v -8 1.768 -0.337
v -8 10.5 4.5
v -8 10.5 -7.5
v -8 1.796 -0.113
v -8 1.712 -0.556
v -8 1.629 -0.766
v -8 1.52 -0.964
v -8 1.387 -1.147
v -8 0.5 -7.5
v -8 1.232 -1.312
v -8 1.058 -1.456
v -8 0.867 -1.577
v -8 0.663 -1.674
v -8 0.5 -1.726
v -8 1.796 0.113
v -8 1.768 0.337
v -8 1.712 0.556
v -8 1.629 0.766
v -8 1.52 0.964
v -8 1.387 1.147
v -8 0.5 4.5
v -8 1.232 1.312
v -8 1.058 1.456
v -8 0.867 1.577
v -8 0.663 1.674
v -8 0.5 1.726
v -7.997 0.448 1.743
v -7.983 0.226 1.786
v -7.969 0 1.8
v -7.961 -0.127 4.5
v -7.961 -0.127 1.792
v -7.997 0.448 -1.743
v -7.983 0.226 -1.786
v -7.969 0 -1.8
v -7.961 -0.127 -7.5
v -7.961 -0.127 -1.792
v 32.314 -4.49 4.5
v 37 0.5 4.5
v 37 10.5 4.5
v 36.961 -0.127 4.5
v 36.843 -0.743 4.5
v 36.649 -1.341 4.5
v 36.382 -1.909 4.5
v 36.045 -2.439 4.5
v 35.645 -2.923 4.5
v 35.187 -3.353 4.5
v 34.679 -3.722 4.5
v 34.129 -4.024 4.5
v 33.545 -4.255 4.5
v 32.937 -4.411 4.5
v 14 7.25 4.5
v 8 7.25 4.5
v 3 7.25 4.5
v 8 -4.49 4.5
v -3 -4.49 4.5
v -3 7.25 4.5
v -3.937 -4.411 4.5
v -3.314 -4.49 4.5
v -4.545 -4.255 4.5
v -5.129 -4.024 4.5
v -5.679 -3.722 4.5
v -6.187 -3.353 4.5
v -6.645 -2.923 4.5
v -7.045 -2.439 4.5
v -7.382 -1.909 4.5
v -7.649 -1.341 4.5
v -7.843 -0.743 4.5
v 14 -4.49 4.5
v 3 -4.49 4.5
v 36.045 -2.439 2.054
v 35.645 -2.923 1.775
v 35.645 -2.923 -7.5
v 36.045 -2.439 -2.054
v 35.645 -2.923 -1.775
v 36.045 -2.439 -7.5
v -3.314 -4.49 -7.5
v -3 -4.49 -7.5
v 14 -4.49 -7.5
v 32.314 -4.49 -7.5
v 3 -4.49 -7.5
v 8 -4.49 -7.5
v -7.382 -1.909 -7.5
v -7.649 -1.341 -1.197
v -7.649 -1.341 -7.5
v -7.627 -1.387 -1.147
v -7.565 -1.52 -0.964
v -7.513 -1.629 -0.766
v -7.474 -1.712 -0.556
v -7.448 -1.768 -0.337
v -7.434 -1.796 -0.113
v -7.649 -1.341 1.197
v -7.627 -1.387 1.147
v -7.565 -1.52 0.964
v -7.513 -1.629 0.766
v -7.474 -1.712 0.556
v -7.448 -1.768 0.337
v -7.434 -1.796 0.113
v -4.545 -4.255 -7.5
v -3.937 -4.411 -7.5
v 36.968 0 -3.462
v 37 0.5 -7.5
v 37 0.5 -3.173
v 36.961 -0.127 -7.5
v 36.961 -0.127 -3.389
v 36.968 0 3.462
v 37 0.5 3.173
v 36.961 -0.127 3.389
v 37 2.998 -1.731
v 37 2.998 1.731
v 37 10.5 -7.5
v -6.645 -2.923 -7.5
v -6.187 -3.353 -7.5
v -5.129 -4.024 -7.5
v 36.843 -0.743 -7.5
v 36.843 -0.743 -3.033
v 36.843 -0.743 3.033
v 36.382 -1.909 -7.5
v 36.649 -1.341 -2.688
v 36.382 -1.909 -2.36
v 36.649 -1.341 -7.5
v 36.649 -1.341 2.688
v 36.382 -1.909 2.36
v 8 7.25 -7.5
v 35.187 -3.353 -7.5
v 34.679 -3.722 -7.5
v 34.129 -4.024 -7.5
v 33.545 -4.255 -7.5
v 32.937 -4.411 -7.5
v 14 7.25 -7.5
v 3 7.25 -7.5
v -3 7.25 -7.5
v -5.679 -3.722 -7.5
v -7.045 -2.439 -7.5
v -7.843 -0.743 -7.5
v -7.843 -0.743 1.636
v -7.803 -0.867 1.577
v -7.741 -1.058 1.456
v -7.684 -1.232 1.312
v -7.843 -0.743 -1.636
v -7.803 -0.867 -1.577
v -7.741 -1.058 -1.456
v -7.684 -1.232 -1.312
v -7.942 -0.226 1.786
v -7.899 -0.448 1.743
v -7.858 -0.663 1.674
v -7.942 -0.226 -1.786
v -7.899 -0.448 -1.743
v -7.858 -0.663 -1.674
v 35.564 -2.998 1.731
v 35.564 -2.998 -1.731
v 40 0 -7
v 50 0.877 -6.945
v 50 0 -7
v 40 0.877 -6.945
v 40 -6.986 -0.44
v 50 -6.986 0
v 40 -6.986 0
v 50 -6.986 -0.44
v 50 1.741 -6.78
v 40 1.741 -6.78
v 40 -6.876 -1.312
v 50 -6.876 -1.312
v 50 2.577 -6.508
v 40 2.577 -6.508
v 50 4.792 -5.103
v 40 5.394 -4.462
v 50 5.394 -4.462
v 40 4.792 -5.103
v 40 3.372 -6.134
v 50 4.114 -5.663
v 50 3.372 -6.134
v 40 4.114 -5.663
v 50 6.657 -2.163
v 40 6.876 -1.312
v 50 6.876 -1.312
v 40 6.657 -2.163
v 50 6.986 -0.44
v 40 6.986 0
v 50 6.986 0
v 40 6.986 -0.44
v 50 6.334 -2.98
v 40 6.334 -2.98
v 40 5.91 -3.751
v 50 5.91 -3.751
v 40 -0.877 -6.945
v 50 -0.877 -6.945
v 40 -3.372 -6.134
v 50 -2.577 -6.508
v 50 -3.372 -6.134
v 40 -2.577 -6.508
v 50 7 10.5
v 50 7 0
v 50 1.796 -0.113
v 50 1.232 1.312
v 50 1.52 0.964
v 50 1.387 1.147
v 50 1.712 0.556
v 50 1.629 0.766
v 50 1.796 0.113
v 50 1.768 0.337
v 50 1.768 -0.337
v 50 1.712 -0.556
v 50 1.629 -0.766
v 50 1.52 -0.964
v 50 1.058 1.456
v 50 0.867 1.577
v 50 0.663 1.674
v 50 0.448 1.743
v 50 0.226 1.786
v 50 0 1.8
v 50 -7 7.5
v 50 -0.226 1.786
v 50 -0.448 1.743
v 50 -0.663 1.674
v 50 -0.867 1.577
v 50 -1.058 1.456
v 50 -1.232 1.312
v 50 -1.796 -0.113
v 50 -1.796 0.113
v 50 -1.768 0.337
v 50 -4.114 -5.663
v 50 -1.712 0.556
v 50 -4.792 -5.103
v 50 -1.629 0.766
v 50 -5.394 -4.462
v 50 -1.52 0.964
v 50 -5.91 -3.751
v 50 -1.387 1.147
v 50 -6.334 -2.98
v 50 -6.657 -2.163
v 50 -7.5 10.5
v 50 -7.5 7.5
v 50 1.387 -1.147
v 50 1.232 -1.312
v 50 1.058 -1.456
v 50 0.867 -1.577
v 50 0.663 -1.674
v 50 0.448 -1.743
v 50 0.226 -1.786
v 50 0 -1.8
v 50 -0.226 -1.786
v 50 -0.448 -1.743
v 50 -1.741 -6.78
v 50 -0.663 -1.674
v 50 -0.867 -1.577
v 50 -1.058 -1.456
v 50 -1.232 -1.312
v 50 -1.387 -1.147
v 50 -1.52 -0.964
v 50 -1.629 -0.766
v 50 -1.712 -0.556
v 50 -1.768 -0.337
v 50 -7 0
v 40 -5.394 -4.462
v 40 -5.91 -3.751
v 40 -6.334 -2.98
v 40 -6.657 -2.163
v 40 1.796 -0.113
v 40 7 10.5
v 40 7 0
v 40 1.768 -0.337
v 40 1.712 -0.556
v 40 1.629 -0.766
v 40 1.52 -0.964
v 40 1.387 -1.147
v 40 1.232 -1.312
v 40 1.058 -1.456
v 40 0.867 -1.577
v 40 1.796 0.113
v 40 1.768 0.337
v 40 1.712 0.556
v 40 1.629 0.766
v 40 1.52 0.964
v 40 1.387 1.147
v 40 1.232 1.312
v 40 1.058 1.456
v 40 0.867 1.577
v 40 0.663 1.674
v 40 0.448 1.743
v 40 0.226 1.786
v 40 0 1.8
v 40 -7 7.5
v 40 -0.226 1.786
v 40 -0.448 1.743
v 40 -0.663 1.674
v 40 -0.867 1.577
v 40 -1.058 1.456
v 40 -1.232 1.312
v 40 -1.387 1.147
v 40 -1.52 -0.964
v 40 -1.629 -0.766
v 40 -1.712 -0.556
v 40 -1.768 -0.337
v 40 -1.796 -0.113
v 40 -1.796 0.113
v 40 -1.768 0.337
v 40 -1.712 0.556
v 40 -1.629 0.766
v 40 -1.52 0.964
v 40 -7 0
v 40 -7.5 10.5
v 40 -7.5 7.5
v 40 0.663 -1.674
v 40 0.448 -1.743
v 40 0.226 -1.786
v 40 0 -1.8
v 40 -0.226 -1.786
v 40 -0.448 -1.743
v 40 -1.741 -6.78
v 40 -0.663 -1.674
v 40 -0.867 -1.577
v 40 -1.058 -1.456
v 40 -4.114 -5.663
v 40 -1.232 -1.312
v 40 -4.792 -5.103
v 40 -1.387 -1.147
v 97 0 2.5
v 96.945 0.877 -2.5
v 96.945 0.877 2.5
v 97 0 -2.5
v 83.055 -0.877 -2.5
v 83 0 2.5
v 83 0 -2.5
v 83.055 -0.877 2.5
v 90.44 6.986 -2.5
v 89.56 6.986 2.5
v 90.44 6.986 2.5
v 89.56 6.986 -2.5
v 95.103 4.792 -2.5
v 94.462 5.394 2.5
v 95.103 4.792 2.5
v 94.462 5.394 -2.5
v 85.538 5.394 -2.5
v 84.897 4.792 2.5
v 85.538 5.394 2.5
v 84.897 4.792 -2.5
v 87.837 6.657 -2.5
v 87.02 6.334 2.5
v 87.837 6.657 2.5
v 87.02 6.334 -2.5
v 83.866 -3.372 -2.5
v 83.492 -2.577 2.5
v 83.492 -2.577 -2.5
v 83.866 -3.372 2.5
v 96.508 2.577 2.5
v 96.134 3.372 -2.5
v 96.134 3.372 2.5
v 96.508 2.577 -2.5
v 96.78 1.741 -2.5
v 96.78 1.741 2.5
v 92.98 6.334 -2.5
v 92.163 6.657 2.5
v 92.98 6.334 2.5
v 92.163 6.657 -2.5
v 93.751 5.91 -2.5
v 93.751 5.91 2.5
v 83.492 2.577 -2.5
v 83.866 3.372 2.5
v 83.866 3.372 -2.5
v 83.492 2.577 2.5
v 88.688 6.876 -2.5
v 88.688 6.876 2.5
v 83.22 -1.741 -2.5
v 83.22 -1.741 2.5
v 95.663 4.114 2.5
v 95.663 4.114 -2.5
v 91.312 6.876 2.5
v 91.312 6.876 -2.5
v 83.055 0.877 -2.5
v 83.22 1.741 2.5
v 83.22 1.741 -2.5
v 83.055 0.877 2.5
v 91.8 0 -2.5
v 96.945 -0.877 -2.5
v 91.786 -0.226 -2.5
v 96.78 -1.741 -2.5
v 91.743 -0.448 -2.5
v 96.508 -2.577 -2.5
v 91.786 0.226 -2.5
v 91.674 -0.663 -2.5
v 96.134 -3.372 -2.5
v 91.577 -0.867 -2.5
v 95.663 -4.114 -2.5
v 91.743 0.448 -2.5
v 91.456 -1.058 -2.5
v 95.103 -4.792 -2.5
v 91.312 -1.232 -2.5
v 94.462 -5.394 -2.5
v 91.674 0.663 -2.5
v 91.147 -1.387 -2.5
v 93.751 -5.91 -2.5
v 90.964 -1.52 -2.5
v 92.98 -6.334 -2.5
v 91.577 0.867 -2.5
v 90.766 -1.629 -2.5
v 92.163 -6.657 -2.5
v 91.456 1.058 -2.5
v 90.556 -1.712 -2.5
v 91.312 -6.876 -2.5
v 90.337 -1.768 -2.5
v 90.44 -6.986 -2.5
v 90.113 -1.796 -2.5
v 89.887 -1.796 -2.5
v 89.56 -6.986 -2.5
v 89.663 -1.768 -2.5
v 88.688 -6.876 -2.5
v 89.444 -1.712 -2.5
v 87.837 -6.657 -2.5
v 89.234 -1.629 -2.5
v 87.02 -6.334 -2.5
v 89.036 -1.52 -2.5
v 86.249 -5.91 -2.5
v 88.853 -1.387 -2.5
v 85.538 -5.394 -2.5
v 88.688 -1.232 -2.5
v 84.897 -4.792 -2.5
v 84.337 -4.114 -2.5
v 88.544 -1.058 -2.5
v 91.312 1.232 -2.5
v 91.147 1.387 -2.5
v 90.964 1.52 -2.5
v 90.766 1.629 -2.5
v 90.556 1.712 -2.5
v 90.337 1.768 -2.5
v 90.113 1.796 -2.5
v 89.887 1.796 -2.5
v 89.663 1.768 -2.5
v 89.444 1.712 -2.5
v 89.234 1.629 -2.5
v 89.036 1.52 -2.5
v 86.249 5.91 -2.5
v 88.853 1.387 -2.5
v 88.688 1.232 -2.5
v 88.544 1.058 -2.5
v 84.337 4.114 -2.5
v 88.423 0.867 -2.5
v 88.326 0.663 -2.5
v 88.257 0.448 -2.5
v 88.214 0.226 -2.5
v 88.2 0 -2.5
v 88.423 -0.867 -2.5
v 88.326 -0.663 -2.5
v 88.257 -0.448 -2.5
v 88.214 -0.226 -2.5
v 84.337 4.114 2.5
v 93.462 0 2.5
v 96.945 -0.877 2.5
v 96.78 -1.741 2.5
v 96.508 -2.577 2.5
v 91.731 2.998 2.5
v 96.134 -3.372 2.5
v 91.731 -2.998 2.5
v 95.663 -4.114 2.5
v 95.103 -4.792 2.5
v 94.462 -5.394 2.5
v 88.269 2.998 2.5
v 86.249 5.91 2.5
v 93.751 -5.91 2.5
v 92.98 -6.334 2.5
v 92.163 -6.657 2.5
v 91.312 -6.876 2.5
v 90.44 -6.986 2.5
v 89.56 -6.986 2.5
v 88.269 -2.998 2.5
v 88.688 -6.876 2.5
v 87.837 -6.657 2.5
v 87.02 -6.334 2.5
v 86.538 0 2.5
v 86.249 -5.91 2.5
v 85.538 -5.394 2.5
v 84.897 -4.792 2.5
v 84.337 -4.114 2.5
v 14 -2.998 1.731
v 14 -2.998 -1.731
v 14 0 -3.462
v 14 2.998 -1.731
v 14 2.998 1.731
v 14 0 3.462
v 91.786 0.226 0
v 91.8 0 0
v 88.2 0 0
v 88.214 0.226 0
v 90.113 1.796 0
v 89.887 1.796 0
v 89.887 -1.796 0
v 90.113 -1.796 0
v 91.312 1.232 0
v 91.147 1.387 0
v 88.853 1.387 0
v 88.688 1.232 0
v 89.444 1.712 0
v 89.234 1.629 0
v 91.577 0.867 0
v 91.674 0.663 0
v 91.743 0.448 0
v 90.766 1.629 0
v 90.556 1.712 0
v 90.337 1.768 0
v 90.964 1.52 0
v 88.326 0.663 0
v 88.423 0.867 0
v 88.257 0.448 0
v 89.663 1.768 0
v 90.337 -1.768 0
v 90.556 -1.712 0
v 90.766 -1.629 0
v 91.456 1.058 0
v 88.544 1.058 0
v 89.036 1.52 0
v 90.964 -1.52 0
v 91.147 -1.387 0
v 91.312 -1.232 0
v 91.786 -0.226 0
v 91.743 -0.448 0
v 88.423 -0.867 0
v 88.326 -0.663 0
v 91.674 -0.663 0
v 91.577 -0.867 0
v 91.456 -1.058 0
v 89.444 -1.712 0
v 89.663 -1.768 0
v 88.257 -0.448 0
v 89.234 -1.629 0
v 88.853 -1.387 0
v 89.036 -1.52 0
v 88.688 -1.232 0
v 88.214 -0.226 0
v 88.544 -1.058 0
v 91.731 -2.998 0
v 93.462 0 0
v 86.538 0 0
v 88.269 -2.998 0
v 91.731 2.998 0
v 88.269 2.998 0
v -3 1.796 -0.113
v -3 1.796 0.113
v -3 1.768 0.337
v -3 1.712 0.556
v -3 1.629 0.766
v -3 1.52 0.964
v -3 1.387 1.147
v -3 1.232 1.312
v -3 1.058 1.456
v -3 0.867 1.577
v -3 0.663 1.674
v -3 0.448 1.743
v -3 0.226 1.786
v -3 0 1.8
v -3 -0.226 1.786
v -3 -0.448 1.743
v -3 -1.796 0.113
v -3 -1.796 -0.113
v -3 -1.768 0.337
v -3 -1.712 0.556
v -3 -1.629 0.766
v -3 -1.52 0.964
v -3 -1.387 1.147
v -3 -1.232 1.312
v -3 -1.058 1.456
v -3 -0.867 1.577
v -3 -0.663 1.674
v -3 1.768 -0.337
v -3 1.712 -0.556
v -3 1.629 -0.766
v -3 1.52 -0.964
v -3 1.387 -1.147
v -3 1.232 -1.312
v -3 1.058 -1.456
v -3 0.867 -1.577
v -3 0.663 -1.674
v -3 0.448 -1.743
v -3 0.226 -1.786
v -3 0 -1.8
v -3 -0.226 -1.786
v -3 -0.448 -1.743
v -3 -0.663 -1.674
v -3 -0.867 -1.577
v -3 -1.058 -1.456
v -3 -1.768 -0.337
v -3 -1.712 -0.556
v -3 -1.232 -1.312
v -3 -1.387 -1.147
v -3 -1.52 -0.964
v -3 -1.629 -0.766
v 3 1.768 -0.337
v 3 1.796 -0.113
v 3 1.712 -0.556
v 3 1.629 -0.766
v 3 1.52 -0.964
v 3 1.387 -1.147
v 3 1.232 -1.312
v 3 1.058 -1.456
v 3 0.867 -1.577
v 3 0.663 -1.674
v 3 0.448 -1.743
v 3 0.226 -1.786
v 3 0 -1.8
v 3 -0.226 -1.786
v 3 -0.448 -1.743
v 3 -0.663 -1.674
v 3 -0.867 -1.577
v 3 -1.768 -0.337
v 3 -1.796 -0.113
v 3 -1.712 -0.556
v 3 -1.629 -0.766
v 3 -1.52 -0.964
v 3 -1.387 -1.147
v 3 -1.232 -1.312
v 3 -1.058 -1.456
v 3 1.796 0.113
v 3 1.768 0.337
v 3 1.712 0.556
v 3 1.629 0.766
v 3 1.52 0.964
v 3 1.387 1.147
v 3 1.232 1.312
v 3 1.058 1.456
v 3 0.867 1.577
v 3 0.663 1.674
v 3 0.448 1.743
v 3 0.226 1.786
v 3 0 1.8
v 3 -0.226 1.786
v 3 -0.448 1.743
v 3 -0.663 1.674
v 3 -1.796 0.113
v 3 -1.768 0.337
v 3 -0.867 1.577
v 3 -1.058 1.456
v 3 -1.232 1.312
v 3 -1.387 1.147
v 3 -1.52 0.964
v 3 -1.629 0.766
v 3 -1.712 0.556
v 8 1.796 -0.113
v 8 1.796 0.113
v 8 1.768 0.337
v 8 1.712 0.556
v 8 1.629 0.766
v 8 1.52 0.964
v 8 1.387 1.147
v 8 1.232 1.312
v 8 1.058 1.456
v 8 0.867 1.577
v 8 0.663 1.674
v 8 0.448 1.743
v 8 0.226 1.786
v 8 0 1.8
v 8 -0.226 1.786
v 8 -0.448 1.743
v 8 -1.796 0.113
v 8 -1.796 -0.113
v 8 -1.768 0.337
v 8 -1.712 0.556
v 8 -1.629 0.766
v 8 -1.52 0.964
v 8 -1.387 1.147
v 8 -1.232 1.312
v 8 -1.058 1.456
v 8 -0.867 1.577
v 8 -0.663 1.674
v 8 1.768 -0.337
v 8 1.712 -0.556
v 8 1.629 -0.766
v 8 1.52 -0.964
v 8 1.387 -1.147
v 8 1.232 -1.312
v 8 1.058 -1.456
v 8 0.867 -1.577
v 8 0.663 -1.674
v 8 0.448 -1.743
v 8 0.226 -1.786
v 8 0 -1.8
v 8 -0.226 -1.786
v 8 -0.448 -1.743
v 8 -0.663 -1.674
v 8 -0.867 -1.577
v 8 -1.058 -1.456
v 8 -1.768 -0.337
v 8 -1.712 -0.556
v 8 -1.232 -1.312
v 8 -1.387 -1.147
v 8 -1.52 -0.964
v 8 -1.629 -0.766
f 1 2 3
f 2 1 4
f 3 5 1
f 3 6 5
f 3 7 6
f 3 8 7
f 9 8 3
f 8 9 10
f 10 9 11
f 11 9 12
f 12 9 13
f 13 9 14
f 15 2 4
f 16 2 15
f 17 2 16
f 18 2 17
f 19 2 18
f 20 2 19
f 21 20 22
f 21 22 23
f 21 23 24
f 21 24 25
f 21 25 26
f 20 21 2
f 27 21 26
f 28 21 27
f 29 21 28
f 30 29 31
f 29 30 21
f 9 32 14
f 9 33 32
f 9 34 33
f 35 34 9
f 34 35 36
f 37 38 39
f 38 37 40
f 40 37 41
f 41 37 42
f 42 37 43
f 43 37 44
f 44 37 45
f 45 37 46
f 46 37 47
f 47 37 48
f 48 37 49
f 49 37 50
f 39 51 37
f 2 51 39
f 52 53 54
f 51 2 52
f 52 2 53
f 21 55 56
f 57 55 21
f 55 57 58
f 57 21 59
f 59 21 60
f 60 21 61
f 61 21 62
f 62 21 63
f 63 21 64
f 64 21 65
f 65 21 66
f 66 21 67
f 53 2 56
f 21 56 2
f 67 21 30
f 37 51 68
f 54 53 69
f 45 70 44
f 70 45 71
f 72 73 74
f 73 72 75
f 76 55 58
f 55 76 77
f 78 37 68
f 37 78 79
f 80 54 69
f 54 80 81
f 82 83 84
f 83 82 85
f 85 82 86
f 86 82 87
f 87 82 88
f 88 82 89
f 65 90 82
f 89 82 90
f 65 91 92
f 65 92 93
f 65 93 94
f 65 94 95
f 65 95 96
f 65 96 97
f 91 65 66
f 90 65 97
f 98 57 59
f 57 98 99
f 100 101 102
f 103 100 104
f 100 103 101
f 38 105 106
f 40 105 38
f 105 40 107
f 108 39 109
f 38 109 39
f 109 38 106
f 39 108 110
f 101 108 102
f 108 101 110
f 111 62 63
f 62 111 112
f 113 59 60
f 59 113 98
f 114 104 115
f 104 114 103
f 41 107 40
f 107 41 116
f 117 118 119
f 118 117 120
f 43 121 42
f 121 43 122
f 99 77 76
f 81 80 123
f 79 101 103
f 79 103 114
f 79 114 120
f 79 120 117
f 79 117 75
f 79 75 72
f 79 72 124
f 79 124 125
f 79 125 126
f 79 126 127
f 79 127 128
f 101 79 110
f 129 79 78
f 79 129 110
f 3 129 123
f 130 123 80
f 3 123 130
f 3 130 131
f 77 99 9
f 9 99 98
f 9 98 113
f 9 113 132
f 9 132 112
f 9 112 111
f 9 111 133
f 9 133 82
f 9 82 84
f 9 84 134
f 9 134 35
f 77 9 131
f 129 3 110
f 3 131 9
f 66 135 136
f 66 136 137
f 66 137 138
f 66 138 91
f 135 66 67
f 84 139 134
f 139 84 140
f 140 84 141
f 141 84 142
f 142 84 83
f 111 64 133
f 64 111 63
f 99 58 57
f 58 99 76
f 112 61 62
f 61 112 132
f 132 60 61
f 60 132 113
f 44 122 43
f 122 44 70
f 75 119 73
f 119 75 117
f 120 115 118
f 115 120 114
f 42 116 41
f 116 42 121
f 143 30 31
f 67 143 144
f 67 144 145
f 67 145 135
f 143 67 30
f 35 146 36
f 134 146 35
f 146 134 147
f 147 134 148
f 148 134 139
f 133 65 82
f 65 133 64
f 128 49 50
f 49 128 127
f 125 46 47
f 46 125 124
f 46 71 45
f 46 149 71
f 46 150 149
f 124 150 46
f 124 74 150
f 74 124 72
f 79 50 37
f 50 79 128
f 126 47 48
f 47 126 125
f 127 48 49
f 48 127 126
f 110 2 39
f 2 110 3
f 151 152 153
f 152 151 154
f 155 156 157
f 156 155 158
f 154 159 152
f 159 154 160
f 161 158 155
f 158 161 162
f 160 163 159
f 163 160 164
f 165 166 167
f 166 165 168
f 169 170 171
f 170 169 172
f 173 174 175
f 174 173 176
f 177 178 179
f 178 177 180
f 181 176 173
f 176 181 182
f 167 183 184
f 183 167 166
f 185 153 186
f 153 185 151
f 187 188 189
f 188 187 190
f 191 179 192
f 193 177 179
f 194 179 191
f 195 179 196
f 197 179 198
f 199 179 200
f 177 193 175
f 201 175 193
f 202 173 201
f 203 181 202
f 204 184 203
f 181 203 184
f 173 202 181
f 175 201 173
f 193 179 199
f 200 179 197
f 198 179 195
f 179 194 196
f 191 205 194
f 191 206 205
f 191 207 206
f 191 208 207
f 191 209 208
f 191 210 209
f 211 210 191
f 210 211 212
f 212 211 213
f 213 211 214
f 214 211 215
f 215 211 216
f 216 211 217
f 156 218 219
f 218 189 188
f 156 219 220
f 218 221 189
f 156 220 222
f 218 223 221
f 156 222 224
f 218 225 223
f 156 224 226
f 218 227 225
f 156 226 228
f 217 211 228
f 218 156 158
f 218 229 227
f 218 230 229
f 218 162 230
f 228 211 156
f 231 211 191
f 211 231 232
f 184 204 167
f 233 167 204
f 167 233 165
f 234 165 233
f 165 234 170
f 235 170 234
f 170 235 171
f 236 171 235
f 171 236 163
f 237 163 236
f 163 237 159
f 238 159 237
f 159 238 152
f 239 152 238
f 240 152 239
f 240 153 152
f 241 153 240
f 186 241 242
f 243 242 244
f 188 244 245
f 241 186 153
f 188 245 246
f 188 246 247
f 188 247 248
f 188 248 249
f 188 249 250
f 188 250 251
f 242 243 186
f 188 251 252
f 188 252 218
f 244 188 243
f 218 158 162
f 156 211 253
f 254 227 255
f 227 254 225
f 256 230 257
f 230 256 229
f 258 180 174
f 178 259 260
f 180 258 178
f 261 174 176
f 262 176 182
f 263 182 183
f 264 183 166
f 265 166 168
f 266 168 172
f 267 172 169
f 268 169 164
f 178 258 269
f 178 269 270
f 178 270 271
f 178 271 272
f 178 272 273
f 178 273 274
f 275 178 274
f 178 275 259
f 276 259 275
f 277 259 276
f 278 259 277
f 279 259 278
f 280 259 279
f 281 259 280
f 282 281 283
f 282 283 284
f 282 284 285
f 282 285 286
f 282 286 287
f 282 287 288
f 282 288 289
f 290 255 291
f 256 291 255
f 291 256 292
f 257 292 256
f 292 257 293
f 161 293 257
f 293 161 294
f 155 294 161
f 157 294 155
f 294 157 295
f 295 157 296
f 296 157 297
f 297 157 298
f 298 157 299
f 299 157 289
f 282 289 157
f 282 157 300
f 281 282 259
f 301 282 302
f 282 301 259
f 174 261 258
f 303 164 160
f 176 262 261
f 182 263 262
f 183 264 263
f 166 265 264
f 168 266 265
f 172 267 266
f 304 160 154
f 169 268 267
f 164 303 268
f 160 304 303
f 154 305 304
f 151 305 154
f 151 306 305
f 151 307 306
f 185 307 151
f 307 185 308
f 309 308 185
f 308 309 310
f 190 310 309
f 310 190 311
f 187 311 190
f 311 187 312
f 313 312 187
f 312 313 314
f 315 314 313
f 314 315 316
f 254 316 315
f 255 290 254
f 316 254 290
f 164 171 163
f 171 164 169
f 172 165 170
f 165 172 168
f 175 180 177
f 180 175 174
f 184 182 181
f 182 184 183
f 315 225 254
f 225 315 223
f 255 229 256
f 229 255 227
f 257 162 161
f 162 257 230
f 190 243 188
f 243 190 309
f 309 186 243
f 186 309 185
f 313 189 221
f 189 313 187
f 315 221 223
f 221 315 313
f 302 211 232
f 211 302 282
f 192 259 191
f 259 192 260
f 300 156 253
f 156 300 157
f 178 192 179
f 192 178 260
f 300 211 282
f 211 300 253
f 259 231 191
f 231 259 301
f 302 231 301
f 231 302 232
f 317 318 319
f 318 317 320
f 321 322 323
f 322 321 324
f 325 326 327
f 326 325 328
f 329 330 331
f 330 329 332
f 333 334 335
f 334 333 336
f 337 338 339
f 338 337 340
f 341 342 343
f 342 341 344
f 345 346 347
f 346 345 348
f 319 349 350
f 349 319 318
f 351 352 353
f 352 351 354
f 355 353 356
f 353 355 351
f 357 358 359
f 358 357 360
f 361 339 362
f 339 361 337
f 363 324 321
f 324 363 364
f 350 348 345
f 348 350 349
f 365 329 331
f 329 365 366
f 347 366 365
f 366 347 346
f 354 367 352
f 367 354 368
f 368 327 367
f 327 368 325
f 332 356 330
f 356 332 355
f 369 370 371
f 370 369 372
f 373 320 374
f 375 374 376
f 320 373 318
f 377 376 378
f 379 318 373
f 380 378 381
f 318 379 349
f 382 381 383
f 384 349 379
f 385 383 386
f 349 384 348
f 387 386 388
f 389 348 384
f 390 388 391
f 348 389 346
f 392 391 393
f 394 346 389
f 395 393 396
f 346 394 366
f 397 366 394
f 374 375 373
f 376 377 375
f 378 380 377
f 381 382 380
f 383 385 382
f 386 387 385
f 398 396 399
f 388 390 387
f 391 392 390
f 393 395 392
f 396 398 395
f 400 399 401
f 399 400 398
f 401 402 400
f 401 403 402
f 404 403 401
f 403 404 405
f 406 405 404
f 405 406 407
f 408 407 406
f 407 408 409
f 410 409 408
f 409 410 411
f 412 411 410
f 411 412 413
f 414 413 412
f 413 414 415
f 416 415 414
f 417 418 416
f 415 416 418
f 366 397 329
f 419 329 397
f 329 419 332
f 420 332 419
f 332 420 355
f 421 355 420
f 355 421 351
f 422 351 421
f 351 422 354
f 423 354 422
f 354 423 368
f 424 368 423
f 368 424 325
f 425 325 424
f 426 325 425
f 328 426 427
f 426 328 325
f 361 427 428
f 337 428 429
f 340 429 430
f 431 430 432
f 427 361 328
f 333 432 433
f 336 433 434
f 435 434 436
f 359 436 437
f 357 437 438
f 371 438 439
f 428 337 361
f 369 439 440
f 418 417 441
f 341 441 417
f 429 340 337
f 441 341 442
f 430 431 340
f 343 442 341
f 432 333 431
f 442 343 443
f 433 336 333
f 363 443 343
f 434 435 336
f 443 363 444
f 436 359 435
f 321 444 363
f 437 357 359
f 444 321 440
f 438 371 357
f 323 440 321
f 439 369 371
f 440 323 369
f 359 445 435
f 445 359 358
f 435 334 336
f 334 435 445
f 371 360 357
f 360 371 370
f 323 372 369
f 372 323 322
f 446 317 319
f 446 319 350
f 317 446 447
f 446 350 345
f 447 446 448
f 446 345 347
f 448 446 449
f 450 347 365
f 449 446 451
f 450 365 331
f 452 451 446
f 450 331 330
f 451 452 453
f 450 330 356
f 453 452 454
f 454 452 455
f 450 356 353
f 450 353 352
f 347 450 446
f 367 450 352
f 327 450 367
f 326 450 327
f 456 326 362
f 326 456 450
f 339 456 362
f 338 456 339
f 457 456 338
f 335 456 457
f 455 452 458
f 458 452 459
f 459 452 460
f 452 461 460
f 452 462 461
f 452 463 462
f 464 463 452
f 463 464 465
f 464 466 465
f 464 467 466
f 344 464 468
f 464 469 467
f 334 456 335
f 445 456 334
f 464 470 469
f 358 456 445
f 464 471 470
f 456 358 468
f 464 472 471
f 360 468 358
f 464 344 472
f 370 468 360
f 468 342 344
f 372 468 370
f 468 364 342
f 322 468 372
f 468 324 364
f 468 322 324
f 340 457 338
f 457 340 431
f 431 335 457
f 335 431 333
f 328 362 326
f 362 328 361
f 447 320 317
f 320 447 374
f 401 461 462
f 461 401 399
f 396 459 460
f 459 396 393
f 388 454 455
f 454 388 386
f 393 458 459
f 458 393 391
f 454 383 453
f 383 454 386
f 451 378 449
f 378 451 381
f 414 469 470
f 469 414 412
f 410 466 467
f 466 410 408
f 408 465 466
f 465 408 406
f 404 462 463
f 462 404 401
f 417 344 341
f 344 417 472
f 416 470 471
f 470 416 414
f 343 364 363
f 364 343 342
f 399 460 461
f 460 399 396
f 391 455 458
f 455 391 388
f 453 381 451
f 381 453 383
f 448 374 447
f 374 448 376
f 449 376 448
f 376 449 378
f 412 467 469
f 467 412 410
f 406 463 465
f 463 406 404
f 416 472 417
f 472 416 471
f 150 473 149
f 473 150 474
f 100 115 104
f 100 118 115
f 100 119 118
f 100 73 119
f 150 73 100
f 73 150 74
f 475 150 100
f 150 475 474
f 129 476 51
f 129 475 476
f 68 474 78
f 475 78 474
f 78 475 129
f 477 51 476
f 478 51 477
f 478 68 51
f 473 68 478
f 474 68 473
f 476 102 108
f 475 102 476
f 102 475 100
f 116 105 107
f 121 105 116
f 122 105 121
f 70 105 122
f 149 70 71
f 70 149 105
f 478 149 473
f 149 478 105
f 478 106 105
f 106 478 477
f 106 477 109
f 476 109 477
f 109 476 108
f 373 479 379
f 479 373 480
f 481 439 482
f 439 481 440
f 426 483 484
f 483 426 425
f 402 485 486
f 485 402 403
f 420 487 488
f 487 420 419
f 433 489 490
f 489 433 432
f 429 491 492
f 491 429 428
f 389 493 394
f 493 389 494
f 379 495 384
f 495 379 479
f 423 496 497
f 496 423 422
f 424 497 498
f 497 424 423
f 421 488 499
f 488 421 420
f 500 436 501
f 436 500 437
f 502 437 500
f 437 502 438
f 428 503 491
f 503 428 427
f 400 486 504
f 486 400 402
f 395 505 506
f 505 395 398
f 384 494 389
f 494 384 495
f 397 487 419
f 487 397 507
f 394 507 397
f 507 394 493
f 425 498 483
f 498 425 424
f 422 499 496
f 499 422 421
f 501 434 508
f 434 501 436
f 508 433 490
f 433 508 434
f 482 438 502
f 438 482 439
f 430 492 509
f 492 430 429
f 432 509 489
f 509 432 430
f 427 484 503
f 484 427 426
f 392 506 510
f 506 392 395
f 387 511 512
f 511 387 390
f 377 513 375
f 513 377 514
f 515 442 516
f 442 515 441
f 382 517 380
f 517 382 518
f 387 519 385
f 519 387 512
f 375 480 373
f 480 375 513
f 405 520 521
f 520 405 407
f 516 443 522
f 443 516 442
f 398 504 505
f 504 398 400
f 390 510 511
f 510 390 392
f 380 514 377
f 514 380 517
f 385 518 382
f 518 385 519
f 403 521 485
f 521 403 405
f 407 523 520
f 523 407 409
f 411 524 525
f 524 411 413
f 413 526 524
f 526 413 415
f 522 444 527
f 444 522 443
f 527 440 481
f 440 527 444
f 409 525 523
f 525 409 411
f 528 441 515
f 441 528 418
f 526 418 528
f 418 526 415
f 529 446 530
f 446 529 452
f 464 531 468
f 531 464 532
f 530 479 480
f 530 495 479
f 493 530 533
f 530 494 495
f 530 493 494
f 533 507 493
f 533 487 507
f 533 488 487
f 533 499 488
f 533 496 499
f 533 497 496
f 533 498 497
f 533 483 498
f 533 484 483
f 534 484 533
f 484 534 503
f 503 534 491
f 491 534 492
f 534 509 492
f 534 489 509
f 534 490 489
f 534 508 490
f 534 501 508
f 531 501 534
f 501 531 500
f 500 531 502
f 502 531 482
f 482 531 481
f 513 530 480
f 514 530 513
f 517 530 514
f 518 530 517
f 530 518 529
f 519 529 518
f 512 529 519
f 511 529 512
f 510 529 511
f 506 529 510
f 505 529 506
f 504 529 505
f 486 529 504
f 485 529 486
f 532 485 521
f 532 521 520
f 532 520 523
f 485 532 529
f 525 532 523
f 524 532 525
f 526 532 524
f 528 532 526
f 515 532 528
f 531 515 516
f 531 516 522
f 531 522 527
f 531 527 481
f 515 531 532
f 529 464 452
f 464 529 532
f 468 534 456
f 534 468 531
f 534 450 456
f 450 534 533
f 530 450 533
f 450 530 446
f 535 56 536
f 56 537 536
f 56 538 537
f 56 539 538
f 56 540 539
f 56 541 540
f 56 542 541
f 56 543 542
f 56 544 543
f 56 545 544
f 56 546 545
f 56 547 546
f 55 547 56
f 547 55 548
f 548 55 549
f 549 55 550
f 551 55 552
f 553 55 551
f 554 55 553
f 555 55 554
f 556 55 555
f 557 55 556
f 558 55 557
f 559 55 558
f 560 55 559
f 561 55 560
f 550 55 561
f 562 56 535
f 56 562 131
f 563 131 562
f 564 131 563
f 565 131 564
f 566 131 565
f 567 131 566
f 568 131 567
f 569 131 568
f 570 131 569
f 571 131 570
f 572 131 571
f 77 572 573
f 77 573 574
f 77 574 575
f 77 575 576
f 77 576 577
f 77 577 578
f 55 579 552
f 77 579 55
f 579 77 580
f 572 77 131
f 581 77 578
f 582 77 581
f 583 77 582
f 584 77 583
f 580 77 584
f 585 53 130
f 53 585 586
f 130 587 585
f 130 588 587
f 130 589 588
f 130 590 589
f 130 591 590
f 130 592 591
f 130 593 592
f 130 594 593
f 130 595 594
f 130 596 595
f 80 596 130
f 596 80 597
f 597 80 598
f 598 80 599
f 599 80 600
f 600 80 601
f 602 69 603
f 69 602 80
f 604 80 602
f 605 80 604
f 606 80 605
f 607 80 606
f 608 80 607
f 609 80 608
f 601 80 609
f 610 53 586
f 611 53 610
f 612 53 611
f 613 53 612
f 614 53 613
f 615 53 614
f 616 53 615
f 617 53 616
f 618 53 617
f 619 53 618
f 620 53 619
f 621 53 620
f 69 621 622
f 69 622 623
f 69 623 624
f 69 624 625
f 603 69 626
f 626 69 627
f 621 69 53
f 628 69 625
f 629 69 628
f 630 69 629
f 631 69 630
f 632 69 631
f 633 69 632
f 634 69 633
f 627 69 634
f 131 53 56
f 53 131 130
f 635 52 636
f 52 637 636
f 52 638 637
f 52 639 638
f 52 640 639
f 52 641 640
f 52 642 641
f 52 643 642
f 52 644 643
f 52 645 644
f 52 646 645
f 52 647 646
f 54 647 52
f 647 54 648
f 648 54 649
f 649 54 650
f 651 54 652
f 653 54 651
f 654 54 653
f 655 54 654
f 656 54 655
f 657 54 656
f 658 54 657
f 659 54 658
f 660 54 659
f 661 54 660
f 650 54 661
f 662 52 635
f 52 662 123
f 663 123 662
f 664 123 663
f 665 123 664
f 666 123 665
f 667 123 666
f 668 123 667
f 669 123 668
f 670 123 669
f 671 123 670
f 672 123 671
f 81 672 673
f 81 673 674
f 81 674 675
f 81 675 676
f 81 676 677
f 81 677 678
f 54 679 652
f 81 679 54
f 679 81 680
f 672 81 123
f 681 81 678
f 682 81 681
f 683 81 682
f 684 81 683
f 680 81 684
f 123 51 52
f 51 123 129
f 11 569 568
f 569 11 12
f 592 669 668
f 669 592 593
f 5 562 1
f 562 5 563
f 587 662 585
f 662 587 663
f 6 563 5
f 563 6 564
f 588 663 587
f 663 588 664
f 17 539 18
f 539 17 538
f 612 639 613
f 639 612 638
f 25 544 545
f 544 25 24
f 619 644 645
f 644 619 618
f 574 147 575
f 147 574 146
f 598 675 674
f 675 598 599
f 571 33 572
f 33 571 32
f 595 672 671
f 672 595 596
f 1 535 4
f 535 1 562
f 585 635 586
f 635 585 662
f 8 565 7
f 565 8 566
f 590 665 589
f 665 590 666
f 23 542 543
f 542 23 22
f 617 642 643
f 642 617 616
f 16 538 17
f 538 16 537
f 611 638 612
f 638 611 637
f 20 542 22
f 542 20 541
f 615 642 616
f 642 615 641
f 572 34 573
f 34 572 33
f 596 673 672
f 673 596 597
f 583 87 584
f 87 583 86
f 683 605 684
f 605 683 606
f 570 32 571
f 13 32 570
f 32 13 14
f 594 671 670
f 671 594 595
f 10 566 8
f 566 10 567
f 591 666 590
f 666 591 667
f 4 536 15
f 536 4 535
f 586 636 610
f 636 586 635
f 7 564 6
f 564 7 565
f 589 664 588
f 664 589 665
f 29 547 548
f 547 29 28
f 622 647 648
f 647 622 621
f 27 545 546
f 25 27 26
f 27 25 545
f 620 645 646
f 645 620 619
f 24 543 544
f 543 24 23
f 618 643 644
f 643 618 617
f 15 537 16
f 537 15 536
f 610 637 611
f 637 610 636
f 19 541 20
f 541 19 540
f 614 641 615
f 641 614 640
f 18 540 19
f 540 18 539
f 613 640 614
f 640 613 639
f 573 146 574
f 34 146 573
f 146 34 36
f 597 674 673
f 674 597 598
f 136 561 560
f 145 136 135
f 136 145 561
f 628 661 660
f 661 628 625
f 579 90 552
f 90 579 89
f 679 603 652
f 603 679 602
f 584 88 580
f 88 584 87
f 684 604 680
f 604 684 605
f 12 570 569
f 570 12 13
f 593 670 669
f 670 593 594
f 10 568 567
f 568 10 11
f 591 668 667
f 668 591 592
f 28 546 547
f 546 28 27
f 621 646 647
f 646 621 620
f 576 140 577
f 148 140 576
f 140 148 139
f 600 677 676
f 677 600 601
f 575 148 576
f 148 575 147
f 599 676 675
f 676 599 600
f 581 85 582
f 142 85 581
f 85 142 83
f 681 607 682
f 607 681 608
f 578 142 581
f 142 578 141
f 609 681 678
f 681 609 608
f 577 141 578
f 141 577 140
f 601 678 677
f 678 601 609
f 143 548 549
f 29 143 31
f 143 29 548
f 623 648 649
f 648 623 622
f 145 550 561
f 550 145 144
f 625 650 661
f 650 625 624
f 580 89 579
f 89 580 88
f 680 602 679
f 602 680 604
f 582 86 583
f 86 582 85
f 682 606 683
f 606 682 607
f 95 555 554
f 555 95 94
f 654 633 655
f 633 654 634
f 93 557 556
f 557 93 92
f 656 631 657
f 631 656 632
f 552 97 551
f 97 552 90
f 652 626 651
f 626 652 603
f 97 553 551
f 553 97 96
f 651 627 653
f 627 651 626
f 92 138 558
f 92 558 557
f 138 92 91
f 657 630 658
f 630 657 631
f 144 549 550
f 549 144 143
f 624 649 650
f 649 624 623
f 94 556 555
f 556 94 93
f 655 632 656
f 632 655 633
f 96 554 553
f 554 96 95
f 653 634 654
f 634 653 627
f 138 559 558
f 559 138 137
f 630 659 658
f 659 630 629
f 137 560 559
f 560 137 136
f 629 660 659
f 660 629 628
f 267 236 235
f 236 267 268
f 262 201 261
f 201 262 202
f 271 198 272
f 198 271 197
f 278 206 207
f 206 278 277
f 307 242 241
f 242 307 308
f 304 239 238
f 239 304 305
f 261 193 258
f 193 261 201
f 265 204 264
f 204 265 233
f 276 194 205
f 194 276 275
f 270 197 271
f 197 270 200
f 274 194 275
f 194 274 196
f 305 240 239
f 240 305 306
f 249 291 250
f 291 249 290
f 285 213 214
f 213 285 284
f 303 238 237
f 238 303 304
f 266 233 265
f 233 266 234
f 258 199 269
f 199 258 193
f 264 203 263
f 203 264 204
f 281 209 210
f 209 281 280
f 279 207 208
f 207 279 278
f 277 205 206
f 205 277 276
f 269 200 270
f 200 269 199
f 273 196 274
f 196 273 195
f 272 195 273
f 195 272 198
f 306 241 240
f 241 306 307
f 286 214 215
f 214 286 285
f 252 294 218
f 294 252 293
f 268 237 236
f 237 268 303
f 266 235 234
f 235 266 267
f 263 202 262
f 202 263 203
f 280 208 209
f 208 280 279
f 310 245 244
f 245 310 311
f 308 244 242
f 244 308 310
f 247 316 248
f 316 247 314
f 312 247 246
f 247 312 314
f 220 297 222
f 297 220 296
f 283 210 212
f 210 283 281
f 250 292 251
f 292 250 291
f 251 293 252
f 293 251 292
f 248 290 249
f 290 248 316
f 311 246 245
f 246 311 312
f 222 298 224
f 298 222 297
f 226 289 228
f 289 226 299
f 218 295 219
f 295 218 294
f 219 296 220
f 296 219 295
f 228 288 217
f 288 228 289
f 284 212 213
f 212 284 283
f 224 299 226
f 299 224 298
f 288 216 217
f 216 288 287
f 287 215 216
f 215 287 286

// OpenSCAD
$fn = 50;


difference() {
	union() {
		translate(v = [14.5000000000, 1.5000000000, -7.5000000000]) {
			hull() {
				translate(v = [-17.5000000000, 1.0000000000, 0]) {
					cylinder(h = 12, r = 5);
				}
				translate(v = [17.5000000000, 1.0000000000, 0]) {
					cylinder(h = 12, r = 5);
				}
				translate(v = [-17.5000000000, -1.0000000000, 0]) {
					cylinder(h = 12, r = 5);
				}
				translate(v = [17.5000000000, -1.0000000000, 0]) {
					cylinder(h = 12, r = 5);
				}
			}
		}
		translate(v = [-8.0000000000, 0.5000000000, -7.5000000000]) {
			cube(size = [45, 10, 12]);
		}
		translate(v = [40.0000000000, 0, 0.0000000000]) {
			rotate(a = [0, 90, 0]) {
				cylinder(h = 10, r = 7.0000000000);
			}
		}
		translate(v = [40.0000000000, -7.0000000000, 0]) {
			cube(size = [10, 14, 7.5000000000]);
		}
		translate(v = [40.0000000000, -7.5000000000, 7.5000000000]) {
			cube(size = [10, 14.5000000000, 3]);
		}
		translate(v = [90, 0, -2.5000000000]) {
			cylinder(h = 5, r = 7.0000000000);
		}
	}
	union() {
		translate(v = [14.0000000000, 0, 0]) {
			rotate(a = [0, 90, 0]) {
				difference() {
					union() {
						linear_extrude(height = 25) {
							polygon(points = [[3.4620000000, 0.0000000000], [1.7310000000, 2.9981799479], [-1.7310000000, 2.9981799479], [-3.4620000000, 0.0000000000], [-1.7310000000, -2.9981799479], [1.7310000000, -2.9981799479]]);
						}
					}
					union();
				}
			}
		}
		translate(v = [90, 0, 0]) {
			rotate(a = [0, 0, 0]) {
				difference() {
					union() {
						translate(v = [0, 0, -100.0000000000]) {
							cylinder(h = 200, r = 1.8000000000);
						}
						linear_extrude(height = 2.5000000000) {
							polygon(points = [[3.4620000000, 0.0000000000], [1.7310000000, 2.9981799479], [-1.7310000000, 2.9981799479], [-3.4620000000, 0.0000000000], [-1.7310000000, -2.9981799479], [1.7310000000, -2.9981799479]]);
						}
						translate(v = [0, 0, -100.0000000000]) {
							cylinder(h = 200, r = 1.8000000000);
						}
						translate(v = [0, 0, -100.0000000000]) {
							cylinder(h = 200, r = 1.8000000000);
						}
					}
					union();
				}
			}
		}
		translate(v = [-3.0000000000, -10.2500000000, -7.5000000000]) {
			cube(size = [6, 17.5000000000, 15]);
		}
		translate(v = [8.0000000000, -10.2500000000, -7.5000000000]) {
			cube(size = [6, 17.5000000000, 15]);
		}
		translate(v = [-8.0000000000, 0, 0]) {
			rotate(a = [0, 90, 0]) {
				cylinder(h = 45, r = 1.8000000000);
			}
		}
		translate(v = [40.0000000000, 0, 0]) {
			rotate(a = [0, 90, 0]) {
				cylinder(h = 10, r = 1.8000000000);
			}
		}
	}
}
